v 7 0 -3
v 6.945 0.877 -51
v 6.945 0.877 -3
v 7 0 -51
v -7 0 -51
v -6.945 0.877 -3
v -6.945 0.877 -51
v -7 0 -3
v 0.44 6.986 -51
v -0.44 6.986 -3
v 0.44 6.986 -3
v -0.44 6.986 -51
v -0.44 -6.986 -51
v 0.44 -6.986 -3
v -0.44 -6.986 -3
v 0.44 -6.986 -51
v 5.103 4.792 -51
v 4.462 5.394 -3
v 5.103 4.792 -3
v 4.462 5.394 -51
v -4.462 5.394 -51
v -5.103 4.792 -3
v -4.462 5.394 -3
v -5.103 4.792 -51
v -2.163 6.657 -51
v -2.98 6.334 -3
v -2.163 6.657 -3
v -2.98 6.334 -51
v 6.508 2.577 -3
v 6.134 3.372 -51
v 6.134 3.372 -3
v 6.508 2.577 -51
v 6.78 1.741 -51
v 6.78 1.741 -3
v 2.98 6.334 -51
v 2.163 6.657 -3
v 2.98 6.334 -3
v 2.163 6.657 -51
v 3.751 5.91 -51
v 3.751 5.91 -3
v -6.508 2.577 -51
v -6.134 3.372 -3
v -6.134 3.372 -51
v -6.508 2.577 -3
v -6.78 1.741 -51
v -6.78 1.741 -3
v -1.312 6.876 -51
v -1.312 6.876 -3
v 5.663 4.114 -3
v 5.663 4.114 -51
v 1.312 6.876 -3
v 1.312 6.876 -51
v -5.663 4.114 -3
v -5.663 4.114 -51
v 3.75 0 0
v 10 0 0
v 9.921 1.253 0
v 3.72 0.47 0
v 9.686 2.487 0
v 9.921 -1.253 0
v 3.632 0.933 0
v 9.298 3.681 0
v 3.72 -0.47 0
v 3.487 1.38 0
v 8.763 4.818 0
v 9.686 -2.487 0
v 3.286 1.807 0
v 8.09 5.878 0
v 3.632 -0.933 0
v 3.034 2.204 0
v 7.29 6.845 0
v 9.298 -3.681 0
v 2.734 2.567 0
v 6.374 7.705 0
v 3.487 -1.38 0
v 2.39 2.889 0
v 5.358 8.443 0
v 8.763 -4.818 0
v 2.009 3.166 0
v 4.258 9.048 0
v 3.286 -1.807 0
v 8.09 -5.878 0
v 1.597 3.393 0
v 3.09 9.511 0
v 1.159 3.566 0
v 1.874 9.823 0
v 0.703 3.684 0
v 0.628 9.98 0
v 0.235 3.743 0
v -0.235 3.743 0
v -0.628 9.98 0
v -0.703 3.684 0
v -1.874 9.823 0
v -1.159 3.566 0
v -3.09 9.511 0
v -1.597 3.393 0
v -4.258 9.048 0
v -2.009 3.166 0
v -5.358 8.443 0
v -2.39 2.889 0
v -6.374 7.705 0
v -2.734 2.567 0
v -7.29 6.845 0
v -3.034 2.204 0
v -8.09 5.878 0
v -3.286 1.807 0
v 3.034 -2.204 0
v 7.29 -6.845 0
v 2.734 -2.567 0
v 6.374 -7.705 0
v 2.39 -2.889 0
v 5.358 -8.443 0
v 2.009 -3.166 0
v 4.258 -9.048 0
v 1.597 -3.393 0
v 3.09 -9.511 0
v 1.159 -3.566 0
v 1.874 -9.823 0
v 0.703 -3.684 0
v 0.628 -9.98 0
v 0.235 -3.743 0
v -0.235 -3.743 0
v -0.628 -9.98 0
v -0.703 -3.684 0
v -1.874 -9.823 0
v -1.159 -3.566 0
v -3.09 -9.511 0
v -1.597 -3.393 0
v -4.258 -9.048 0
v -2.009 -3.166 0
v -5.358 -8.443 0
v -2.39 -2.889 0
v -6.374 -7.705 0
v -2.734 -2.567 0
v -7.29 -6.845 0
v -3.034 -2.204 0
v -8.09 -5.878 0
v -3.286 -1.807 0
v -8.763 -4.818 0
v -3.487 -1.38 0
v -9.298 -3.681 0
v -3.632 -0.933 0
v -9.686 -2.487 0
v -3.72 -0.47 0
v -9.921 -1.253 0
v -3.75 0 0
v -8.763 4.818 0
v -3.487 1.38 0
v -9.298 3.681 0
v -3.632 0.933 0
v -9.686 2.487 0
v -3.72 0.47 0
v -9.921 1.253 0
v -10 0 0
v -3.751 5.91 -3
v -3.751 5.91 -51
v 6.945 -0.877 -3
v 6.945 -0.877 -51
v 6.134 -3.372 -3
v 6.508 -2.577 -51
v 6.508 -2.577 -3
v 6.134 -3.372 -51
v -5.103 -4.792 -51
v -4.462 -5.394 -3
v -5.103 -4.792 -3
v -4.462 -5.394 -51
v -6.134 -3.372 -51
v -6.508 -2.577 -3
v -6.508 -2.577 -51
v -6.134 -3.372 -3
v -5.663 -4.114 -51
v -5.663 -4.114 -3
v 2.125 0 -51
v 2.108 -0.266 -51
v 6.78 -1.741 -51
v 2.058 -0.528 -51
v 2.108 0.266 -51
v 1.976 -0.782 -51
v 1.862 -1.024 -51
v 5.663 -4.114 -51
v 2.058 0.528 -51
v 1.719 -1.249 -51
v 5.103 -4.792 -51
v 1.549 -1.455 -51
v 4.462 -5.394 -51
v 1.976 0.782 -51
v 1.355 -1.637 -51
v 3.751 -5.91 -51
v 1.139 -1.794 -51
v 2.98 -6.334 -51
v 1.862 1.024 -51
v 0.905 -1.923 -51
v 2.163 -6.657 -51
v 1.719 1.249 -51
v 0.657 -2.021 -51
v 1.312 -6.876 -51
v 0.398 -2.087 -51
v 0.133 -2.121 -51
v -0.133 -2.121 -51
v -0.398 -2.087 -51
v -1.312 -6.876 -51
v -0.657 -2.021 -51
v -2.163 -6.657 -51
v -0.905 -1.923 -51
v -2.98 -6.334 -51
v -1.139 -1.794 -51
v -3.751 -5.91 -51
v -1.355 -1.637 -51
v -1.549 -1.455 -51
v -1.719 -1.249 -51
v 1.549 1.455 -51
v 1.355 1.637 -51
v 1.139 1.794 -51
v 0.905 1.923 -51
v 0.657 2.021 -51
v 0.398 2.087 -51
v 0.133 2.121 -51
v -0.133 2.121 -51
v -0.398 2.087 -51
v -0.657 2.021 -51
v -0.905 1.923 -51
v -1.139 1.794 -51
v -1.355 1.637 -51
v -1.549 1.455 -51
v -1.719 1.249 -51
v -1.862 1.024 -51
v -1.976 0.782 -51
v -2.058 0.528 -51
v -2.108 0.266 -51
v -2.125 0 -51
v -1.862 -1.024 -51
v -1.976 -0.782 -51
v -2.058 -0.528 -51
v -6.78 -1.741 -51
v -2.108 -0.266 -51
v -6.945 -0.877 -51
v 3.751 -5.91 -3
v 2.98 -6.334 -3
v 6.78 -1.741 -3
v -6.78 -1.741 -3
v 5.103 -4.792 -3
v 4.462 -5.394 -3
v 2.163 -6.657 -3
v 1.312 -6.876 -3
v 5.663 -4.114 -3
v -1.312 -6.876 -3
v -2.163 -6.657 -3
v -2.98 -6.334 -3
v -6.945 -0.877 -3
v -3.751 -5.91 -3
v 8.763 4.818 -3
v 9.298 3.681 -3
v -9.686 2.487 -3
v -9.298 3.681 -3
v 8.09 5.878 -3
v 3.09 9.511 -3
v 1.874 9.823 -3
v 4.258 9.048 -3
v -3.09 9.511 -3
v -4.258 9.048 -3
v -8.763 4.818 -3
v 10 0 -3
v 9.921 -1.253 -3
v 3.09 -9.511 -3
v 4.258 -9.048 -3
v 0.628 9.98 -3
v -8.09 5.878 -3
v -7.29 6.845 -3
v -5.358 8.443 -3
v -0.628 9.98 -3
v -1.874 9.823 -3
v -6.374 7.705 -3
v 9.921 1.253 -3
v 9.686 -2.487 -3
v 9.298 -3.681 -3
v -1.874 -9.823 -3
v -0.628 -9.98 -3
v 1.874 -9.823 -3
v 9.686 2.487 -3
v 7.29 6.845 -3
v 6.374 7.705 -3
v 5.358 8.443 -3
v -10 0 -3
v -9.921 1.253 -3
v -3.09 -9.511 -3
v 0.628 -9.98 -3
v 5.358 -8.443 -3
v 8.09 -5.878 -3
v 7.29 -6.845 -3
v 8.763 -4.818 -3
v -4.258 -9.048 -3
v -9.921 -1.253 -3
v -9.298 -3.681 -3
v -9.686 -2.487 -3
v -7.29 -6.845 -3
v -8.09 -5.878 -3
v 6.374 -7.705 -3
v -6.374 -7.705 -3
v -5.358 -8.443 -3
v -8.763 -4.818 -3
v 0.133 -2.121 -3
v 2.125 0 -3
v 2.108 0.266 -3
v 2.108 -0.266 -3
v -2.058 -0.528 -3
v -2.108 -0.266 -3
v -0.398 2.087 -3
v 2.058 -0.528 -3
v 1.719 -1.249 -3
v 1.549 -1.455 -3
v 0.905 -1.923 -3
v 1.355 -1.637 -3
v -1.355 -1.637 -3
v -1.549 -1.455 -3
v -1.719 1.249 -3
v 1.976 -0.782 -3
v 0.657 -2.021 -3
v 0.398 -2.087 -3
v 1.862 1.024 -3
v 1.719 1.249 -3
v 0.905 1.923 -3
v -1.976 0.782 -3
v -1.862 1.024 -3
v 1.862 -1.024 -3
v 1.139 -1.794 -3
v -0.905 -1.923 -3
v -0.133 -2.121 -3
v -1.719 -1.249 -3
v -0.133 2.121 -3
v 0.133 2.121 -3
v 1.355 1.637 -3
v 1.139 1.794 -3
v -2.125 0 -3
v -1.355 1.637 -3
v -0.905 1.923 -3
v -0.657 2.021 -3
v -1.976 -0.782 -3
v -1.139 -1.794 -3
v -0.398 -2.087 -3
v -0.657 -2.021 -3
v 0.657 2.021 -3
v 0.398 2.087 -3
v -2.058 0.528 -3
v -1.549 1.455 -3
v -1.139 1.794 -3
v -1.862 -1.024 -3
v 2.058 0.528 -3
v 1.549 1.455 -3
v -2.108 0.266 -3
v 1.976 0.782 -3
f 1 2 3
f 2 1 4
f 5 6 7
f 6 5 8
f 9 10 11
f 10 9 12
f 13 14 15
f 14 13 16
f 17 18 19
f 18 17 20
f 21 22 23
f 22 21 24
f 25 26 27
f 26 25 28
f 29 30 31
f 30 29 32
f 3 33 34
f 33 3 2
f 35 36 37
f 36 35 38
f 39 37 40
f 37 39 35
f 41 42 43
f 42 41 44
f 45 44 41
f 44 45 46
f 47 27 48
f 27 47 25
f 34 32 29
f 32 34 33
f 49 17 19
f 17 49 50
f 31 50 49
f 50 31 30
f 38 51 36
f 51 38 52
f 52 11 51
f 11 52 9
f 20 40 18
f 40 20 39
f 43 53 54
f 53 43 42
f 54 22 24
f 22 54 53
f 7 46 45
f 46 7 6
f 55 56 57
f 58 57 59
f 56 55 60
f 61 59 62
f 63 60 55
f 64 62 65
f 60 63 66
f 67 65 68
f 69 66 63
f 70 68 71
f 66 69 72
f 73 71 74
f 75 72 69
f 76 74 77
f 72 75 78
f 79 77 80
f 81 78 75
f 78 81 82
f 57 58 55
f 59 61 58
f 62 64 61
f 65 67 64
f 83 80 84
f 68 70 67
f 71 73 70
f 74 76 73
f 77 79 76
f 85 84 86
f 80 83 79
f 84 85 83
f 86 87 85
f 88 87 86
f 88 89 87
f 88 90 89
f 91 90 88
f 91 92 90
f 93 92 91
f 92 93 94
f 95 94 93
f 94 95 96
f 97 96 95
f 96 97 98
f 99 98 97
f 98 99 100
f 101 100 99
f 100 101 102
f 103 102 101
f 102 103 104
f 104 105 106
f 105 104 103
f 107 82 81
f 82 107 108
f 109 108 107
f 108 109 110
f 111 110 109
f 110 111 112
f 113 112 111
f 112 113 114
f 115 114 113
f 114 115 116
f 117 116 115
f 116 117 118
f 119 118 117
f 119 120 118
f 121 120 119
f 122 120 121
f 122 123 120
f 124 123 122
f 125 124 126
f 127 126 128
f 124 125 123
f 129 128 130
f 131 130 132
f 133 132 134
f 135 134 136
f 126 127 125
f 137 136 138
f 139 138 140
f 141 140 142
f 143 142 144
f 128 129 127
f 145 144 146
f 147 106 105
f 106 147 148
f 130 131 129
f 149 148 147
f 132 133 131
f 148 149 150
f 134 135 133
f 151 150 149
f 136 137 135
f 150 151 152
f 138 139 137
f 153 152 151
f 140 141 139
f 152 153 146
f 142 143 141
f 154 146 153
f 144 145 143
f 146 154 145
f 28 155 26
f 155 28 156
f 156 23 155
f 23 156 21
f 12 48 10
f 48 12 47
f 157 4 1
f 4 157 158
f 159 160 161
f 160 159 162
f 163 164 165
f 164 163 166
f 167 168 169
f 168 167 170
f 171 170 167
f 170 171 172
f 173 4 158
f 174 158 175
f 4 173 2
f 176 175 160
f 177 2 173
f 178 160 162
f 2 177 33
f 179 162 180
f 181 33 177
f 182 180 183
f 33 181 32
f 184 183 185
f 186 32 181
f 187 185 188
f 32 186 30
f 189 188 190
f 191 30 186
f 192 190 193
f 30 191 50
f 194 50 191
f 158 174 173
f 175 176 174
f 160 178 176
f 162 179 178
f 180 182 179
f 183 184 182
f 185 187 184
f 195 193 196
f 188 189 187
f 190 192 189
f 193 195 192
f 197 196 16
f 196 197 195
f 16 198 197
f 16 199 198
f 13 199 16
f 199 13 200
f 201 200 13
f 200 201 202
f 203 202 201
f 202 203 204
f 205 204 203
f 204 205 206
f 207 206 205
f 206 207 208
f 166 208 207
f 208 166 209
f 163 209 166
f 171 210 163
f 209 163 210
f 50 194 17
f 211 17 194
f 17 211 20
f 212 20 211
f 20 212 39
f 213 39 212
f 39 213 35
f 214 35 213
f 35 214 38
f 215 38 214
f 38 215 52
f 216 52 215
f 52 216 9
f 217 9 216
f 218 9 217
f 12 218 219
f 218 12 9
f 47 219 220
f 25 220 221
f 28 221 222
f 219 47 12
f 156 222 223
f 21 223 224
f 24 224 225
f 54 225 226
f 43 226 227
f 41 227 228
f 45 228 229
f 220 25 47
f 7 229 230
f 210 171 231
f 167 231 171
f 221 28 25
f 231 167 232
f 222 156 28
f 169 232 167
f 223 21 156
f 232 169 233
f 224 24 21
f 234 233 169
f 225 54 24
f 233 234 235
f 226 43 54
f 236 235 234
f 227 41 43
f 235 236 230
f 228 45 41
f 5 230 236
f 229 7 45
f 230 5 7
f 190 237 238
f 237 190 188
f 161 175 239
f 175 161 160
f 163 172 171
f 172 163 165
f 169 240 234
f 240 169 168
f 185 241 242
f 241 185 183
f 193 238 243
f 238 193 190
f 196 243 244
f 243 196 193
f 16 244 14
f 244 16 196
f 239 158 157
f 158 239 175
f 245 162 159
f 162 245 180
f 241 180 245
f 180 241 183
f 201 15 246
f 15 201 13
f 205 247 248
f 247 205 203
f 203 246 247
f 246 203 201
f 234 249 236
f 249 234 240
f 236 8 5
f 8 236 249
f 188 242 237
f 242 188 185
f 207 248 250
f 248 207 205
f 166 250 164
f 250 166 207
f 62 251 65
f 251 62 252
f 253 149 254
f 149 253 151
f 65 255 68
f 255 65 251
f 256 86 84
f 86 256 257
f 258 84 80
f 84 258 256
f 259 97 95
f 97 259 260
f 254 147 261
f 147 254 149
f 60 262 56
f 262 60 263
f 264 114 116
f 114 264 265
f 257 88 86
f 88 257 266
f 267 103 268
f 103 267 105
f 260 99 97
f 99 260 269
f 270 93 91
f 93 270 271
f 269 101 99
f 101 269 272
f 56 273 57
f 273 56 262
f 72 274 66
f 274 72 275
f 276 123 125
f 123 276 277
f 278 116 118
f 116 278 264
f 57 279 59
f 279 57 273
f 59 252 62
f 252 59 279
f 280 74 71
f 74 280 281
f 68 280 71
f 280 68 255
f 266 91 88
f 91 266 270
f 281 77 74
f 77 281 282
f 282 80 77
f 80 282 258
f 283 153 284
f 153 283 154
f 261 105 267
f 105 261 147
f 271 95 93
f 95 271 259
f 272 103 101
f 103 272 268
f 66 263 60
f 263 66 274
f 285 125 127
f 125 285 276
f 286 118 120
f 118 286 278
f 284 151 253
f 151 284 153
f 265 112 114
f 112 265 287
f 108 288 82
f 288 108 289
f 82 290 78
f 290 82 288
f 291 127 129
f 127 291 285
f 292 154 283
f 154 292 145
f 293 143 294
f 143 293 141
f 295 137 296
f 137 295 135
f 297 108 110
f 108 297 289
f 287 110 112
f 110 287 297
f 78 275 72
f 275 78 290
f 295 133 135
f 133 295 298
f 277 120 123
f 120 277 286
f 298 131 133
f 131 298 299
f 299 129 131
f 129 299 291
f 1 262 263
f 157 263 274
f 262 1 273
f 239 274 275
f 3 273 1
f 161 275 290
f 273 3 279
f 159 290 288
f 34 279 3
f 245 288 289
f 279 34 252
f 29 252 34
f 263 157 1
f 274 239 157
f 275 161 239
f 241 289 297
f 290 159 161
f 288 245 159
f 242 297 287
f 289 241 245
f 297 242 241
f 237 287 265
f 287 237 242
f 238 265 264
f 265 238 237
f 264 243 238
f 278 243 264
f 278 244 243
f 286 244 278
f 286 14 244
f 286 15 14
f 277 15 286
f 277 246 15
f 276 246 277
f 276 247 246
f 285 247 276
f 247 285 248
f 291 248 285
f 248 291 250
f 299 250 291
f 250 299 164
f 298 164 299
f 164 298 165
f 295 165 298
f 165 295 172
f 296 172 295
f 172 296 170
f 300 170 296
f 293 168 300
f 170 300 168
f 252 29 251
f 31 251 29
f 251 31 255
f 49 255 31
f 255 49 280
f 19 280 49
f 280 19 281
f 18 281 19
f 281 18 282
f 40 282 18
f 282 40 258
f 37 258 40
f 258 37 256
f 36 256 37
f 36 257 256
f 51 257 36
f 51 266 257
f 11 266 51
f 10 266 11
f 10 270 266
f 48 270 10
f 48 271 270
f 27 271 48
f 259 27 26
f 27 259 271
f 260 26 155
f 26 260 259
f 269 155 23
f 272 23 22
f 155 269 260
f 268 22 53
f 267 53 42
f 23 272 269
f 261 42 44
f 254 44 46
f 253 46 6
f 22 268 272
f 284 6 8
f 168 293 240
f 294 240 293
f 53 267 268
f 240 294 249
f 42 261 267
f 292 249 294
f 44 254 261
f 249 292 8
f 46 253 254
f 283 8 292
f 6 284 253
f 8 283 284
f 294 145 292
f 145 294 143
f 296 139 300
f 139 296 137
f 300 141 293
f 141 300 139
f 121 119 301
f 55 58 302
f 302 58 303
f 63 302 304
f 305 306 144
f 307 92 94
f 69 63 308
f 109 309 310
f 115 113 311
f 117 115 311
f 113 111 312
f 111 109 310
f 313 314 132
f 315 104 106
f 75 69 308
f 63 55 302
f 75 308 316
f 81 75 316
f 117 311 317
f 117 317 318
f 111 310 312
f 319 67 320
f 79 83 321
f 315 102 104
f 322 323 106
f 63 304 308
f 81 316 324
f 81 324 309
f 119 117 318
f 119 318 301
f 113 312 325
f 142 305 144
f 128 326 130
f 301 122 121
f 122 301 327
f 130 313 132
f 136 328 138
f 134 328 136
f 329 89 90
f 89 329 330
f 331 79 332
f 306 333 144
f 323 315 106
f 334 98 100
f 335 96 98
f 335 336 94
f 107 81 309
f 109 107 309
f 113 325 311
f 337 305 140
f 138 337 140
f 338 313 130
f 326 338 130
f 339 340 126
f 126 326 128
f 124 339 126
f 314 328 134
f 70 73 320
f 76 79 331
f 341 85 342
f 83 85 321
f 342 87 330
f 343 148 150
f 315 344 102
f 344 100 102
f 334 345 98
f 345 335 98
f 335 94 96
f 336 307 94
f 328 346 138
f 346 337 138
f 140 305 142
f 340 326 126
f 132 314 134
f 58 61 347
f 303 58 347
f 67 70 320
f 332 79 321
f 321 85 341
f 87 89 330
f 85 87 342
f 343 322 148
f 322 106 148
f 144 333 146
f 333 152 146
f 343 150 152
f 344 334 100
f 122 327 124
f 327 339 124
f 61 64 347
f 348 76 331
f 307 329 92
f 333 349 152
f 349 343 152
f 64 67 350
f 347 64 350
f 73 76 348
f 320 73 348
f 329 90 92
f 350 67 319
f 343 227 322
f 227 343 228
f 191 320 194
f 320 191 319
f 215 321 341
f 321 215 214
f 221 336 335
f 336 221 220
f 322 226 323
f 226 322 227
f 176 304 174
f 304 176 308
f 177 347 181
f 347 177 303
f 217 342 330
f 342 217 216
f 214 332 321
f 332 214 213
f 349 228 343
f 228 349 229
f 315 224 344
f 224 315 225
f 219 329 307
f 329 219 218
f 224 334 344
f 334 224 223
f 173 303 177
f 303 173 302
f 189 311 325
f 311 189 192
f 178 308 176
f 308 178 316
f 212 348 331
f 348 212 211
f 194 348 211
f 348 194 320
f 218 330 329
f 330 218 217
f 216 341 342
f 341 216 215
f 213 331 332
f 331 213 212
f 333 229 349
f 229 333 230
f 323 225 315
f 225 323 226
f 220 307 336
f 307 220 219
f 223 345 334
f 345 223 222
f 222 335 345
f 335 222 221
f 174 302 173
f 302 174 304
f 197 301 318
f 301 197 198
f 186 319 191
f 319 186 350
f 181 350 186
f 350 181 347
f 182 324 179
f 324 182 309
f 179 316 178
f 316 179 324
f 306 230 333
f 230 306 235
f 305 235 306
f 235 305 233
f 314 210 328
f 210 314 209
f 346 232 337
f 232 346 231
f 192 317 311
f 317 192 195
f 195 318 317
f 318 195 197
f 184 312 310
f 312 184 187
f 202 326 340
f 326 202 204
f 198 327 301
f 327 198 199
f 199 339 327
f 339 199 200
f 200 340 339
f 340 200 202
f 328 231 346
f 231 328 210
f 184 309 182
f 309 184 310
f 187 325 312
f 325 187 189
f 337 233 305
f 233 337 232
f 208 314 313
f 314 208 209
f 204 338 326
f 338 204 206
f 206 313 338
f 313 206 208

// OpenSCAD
$fn = 50;


difference() {
	union() {
		translate(v = [0, 0, -51.0000000000]) {
			cylinder(h = 51, r = 7.0000000000);
		}
		translate(v = [0, 0, -3.0000000000]) {
			cylinder(h = 3, r = 10.0000000000);
		}
	}
	union() {
		translate(v = [0, 0, 0]) {
			rotate(a = [0, 0, 0]) {
				difference() {
					union() {
						#translate(v = [0, 0, -51.0000000000]) {
							cylinder(h = 51, r = 2.0000000000);
						}
						#translate(v = [0, 0, -3]) {
							cylinder(h = 3, r1 = 2.1250000000, r2 = 3.7500000000);
						}
						#translate(v = [0, 0, -51.0000000000]) {
							cylinder(h = 51, r = 2.1250000000);
						}
						#translate(v = [0, 0, -51.0000000000]) {
							cylinder(h = 51, r = 2.0000000000);
						}
					}
					union();
				}
			}
		}
	}
}
